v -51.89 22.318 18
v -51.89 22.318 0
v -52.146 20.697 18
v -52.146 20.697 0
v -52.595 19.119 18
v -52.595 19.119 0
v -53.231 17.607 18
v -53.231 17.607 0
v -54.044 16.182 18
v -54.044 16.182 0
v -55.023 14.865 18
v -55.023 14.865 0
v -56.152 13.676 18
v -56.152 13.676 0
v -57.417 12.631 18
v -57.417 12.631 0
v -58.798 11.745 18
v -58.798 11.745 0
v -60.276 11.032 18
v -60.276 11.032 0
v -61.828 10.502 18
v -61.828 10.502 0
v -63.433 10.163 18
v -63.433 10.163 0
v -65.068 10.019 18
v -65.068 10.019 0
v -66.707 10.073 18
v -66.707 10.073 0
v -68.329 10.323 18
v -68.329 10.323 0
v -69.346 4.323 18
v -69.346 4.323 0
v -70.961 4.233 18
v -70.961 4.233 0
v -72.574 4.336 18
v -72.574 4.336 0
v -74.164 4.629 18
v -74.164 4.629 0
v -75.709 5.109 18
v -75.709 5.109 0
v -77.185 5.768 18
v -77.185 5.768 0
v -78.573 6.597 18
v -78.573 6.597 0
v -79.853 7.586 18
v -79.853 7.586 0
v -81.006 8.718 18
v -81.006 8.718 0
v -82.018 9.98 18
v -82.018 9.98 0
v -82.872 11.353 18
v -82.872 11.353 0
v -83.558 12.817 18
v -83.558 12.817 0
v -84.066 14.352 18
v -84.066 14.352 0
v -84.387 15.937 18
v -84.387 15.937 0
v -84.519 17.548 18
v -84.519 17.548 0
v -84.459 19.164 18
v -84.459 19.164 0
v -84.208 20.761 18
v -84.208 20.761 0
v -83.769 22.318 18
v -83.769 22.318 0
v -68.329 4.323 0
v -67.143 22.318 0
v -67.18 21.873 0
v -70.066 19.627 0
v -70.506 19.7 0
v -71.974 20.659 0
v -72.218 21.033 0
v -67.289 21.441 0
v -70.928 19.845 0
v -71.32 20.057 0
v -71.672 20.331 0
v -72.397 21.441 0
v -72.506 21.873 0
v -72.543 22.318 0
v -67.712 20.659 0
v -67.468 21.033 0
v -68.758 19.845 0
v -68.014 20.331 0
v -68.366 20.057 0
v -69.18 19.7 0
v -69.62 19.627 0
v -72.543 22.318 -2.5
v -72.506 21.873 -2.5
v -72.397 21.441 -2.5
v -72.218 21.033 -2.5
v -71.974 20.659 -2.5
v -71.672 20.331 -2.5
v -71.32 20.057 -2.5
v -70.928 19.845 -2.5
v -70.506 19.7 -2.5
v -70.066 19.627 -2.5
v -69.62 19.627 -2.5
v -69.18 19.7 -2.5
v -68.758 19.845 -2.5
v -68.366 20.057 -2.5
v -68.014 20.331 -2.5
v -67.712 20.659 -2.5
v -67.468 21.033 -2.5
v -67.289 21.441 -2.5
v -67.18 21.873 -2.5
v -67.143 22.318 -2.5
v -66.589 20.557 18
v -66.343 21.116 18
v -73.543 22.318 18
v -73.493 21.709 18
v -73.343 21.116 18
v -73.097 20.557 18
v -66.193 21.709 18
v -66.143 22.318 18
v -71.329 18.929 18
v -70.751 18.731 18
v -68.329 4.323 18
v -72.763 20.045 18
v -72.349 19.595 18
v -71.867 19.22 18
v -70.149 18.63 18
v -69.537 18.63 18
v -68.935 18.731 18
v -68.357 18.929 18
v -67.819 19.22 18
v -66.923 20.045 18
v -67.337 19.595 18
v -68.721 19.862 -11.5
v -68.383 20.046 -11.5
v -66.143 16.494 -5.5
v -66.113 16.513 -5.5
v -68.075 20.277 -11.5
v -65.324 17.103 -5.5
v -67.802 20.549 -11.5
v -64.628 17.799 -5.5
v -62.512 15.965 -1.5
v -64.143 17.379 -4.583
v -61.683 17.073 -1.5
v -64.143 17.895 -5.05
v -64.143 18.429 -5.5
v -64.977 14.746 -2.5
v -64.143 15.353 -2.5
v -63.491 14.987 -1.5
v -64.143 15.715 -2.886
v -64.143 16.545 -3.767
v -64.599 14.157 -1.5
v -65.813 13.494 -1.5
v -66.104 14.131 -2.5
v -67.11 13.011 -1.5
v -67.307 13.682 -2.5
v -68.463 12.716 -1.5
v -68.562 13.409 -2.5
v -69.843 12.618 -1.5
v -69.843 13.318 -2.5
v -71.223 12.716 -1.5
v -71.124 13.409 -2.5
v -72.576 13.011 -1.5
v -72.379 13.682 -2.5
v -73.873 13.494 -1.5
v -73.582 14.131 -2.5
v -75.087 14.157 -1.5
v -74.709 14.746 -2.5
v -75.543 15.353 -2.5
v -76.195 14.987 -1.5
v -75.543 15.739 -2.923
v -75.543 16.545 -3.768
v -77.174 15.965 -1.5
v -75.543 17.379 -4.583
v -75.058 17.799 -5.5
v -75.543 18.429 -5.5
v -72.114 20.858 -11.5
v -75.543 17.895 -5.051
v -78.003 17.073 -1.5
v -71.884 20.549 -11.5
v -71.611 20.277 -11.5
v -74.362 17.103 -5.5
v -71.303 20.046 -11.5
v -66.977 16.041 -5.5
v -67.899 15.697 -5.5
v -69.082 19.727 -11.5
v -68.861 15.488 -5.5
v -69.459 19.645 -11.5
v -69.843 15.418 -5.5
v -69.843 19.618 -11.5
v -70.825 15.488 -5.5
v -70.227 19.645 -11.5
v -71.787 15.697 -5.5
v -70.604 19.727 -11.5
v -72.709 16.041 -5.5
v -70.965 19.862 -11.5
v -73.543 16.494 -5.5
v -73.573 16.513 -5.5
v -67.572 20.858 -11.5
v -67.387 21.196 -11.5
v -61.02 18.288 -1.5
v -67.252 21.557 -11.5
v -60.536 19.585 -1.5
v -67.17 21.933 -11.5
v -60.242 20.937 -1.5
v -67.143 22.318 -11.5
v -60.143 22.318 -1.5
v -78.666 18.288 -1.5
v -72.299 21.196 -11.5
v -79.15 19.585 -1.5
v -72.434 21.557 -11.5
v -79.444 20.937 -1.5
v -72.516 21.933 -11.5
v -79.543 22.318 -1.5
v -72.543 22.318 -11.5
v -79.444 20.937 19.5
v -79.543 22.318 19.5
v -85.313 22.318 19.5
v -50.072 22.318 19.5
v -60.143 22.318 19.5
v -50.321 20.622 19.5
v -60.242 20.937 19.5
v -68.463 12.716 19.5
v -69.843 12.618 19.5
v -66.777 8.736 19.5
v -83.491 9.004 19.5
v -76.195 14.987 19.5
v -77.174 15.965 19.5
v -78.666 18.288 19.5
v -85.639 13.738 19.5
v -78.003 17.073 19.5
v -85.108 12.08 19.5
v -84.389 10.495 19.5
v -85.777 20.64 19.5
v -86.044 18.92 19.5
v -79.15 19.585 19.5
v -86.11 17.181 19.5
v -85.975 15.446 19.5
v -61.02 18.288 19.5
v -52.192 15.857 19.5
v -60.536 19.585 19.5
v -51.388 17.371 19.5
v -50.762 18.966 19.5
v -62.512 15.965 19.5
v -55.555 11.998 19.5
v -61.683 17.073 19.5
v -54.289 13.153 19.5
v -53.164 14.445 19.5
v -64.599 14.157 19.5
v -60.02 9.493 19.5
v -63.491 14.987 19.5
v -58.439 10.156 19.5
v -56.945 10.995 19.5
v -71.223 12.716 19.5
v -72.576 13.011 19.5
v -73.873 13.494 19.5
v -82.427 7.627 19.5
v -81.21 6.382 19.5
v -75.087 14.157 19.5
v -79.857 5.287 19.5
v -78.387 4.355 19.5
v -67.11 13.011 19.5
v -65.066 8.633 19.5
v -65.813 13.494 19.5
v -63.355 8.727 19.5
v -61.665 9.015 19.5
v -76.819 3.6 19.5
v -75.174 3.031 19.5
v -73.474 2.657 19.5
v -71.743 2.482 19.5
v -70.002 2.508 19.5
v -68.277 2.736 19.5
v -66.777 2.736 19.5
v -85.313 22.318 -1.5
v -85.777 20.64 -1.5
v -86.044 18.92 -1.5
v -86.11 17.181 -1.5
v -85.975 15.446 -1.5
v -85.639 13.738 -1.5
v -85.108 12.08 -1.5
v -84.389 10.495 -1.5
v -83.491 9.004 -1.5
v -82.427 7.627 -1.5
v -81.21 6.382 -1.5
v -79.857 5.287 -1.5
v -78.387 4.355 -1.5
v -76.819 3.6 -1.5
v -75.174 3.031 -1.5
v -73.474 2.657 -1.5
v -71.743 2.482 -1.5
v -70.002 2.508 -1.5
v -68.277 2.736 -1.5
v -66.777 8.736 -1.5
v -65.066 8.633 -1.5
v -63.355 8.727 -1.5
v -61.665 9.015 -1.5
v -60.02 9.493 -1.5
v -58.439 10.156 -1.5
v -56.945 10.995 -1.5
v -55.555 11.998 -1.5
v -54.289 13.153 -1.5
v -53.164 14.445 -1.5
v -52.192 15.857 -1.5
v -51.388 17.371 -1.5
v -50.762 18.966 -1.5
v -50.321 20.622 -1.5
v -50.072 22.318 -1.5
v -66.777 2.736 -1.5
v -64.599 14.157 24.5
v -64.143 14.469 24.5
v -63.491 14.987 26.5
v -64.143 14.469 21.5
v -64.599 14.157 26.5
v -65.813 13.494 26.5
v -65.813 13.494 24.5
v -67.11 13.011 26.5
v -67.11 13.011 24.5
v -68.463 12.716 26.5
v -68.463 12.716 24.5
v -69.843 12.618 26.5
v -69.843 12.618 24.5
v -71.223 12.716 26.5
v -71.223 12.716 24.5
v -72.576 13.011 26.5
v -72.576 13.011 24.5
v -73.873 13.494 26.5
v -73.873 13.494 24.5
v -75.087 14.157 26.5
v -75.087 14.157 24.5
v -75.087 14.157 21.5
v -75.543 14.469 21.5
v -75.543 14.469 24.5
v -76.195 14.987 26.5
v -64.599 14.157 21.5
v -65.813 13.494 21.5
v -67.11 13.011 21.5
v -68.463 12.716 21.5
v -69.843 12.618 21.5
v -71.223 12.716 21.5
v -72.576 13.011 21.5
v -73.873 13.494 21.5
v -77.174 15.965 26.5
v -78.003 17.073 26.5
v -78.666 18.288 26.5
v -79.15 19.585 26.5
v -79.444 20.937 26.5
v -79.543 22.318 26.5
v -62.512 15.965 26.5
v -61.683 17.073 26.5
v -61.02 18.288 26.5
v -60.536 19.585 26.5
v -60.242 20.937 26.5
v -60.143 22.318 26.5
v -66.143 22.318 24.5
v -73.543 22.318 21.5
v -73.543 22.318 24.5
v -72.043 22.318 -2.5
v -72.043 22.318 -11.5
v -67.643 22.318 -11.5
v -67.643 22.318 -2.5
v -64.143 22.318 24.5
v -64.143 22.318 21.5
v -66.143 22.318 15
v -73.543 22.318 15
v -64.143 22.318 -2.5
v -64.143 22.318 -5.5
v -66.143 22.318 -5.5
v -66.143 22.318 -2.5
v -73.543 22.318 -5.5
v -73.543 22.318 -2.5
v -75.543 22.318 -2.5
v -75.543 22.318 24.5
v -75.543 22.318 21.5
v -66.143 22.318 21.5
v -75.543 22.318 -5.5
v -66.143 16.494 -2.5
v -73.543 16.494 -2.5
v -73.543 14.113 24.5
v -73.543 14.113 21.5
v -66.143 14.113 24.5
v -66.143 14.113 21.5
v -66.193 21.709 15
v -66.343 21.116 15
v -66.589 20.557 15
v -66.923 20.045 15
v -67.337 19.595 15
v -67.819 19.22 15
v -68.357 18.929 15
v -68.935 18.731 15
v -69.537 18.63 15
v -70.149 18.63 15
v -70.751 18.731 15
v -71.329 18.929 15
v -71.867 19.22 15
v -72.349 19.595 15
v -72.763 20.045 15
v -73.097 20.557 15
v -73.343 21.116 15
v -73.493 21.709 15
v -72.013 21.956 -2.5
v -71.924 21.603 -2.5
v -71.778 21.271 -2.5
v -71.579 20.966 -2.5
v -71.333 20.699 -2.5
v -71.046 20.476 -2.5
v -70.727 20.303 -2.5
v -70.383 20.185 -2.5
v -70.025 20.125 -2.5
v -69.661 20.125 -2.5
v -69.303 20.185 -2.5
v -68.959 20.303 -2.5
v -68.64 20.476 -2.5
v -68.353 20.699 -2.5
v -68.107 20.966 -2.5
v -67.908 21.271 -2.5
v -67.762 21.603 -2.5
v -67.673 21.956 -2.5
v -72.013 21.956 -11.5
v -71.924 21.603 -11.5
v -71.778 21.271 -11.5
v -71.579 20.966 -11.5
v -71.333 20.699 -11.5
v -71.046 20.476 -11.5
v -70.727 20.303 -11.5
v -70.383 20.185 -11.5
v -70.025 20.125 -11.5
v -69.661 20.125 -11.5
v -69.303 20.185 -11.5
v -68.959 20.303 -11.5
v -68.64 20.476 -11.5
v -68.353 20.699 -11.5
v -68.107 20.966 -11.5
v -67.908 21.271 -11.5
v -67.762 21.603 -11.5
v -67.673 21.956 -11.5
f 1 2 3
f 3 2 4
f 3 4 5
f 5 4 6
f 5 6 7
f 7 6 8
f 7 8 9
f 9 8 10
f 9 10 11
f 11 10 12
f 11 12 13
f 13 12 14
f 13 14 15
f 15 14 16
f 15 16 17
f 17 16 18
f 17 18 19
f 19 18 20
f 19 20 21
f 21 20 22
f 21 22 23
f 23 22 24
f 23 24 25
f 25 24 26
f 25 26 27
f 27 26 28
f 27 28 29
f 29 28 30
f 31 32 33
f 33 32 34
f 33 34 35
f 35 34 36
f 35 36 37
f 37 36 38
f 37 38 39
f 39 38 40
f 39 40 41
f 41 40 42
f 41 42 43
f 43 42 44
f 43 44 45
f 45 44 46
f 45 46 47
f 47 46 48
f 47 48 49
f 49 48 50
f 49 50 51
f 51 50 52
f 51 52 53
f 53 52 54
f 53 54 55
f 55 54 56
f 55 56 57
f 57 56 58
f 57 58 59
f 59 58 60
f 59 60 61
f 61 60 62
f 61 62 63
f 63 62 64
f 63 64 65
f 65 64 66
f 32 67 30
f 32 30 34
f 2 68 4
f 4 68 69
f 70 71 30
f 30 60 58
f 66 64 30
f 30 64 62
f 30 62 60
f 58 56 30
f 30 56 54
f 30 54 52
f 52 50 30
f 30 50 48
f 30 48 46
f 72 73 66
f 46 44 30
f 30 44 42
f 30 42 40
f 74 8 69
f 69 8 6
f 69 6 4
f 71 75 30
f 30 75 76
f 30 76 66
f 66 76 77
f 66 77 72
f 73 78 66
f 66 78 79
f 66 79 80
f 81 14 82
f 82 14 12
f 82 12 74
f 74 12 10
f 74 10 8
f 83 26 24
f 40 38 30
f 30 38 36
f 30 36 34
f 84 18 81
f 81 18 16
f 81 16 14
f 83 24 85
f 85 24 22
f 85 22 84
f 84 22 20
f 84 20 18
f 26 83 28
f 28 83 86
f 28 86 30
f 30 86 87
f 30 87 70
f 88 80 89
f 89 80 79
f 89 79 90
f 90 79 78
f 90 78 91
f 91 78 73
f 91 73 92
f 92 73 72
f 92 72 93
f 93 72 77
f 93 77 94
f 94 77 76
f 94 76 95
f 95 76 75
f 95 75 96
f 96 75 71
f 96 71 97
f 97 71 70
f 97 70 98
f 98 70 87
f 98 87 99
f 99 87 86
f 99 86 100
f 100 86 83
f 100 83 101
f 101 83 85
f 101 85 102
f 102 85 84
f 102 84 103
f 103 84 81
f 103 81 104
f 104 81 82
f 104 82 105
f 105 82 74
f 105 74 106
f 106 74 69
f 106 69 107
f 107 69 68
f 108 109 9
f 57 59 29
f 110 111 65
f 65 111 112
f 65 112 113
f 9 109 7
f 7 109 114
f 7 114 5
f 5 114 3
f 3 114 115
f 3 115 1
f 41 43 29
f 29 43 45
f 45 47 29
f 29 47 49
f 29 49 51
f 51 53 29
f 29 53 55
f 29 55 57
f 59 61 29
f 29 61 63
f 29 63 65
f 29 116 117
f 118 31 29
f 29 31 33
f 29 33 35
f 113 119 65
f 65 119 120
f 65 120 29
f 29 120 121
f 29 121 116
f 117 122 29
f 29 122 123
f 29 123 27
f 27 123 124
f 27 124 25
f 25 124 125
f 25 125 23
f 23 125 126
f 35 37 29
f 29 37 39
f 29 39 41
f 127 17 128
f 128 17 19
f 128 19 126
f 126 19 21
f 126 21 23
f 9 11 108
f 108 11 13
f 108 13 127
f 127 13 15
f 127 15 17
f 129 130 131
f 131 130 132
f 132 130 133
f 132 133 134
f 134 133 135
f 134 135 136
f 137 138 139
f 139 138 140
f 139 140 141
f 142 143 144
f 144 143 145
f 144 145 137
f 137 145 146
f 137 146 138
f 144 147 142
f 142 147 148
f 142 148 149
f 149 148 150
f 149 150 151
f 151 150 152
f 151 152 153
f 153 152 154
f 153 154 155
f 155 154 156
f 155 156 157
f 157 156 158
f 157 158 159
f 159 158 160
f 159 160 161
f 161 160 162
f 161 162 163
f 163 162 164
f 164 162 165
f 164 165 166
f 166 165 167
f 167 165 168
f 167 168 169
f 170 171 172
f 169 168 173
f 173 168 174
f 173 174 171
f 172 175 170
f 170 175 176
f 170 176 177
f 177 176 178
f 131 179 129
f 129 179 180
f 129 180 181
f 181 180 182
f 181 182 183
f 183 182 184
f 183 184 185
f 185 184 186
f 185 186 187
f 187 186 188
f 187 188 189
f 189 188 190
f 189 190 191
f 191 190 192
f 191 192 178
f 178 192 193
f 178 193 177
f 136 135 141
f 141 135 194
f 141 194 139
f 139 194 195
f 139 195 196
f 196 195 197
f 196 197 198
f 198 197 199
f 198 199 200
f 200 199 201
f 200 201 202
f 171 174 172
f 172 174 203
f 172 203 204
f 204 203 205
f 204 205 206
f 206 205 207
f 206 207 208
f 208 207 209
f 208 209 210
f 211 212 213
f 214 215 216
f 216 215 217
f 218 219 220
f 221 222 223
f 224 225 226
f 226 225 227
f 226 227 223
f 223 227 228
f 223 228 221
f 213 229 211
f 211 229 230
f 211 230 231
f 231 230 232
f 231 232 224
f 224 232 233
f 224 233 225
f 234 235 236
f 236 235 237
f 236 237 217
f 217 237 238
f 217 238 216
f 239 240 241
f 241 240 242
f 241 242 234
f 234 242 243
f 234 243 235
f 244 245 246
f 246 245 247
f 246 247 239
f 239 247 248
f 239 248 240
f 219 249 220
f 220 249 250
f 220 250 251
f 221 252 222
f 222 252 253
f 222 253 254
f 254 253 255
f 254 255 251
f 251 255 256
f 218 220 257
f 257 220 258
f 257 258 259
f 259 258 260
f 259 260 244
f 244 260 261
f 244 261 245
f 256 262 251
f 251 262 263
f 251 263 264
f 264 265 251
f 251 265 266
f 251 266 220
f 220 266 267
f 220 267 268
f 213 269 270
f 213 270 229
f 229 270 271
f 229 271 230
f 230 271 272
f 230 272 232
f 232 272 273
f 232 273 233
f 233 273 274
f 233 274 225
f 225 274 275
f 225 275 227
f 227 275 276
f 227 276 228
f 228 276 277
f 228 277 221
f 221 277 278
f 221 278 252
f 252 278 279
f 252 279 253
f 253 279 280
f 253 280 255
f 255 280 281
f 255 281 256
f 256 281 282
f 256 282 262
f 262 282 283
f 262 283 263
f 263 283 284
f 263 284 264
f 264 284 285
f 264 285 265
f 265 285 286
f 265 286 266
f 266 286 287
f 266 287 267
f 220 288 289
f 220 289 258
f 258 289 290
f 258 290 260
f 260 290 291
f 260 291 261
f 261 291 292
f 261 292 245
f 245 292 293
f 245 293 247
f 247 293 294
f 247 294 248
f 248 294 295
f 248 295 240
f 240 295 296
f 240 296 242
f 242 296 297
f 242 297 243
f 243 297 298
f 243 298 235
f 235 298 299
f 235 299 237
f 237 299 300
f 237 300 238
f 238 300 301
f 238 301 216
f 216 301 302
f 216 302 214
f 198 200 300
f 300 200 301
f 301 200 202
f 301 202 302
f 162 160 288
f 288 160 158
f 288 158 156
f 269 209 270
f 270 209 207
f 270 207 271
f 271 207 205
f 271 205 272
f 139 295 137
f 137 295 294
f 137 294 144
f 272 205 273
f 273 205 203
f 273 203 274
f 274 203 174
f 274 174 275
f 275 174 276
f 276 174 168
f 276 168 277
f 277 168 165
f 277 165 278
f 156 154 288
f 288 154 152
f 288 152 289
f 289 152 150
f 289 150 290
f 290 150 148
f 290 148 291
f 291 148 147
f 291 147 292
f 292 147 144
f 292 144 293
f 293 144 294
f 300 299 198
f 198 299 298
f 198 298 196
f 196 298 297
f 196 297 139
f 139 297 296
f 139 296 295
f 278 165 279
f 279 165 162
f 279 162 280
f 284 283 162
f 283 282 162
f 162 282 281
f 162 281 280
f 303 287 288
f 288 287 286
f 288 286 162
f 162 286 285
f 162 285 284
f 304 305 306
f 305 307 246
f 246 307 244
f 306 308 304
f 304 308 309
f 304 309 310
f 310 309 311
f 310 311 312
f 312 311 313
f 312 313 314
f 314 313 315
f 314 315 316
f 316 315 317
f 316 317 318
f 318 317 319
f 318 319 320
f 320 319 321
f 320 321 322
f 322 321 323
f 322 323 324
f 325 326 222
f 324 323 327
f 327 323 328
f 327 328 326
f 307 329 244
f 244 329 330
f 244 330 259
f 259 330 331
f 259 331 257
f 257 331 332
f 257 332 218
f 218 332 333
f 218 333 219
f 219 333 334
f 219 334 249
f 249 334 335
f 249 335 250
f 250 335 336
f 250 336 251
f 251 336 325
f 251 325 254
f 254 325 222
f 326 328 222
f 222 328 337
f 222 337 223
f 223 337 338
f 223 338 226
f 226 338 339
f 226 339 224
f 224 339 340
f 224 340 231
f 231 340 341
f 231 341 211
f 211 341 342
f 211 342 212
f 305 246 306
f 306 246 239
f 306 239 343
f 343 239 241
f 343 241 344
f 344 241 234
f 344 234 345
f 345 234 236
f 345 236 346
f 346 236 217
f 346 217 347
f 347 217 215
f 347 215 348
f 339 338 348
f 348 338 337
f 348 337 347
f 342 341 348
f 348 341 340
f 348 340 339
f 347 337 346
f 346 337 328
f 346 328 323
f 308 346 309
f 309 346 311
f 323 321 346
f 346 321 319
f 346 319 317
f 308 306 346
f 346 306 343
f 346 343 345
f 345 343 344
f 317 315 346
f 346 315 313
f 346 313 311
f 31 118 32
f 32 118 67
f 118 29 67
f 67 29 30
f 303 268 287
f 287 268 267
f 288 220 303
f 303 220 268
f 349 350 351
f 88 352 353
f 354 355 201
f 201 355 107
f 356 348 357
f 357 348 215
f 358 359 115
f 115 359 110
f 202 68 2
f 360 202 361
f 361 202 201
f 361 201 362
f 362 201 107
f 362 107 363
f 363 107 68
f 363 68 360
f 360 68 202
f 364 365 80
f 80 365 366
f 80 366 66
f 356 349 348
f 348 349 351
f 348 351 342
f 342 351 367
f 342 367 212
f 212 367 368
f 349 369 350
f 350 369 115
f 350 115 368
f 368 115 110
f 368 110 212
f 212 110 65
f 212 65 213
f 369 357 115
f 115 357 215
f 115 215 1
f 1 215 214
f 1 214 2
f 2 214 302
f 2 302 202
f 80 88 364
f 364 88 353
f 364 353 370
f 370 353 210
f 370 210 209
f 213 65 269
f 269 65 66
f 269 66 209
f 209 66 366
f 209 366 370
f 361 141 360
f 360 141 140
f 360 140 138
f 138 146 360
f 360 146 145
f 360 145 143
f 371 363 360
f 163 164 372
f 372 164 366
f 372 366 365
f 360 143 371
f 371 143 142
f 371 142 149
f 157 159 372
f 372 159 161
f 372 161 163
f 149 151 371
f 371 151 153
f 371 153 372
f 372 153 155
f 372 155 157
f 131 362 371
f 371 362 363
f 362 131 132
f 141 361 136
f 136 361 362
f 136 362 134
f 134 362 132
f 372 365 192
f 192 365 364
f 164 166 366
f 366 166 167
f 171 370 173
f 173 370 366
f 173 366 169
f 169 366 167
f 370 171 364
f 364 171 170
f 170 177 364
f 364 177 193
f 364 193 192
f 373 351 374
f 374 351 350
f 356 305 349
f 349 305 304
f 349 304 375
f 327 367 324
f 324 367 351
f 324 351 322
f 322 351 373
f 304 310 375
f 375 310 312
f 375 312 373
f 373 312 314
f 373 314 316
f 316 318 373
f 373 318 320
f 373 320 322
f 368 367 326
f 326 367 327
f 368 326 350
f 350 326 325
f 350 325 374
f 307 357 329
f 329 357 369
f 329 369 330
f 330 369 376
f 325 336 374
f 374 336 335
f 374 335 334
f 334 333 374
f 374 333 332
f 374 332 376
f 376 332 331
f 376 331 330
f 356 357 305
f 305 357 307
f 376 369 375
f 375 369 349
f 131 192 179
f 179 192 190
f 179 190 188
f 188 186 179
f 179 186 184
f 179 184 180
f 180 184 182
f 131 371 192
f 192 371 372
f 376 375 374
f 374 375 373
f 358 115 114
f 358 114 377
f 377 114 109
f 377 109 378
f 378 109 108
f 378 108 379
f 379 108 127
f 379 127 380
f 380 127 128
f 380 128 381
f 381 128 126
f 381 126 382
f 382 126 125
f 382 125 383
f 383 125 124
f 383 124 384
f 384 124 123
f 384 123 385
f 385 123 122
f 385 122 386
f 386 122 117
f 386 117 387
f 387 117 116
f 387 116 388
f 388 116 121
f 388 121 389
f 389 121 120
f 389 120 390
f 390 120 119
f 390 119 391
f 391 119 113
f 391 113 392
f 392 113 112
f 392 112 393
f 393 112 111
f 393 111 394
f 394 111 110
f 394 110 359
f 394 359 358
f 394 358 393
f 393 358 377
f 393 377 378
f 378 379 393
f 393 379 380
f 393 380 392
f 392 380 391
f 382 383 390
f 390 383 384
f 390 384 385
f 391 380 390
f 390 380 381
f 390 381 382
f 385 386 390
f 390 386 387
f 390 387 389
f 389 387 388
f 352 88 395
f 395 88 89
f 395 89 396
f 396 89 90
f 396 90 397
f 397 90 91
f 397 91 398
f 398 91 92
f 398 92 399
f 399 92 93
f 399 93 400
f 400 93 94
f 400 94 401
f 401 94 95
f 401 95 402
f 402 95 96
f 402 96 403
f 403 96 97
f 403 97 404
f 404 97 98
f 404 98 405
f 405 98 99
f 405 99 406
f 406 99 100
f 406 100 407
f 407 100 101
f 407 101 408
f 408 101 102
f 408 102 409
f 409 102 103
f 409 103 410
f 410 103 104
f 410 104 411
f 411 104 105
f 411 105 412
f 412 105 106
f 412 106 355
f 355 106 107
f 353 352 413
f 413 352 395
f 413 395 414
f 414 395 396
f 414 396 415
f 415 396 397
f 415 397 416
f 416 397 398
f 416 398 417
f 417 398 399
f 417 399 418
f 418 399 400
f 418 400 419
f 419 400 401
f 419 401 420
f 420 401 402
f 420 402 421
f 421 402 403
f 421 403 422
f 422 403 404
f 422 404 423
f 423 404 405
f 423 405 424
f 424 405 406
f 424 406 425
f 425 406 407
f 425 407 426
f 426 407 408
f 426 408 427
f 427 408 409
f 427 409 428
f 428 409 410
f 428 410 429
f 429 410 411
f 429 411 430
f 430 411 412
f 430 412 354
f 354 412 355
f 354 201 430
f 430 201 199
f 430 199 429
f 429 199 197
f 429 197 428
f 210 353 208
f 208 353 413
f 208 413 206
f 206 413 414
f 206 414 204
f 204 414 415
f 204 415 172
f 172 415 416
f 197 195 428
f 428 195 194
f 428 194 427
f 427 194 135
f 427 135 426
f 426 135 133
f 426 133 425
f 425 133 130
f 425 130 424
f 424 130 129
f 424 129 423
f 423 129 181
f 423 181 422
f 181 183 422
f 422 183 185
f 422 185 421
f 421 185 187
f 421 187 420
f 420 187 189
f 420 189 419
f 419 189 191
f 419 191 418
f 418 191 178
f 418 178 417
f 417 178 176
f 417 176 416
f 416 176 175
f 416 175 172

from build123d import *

# Parameters (mm, degrees)
SALIENTE_EXTRUIR1_DEPTH = 18
SALIENTE_EXTRUIR2_START = 1.5
CROQUIS2_R              = 2.7
SALIENTE_EXTRUIR2_DEPTH = 1.5
SALIENTE_EXTRUIR3_DEPTH = 1.5
CROQUIS6_W              = 5.4
CROQUIS6_H              = 1.803822617
SALIENTE_EXTRUIR7_DEPTH = 10
CROQUIS10_W             = 5.4
CROQUIS10_H             = 10
CORTAR_EXTRUIR3_DEPTH   = 10
CROQUIS12_W             = 50.345864286
CROQUIS12_H             = 43.398115734
CORTAR_EXTRUIR4_DEPTH   = 30
CROQUIS14_W             = 2
CROQUIS14_H             = 3
CORTAR_EXTRUIR5_DEPTH   = 30
CORTAR_EXTRUIR7_START   = -7.4
CROQUIS16_W             = 3
CROQUIS16_H             = 7.002646448
CROQUIS16_H_2           = 3.270183245
CORTAR_EXTRUIR7_DEPTH   = 7.4
CROQUIS17_W             = 3.7
CROQUIS17_H             = 3
REVOLUCI_N2_ANGLE       = 180
CROQUIS19_W             = 0.5
CROQUIS19_H             = 9
REVOLUCI_N3_ANGLE       = 180


with BuildPart() as part:
    # Croquis1 → Saliente-Extruir1 (new body)
    with BuildSketch(Plane.XY):
        with BuildLine():
            Line((-53.667784589, 33.4650382), (-54.417784589, 34.764076306))
            Line((-54.417784589, 34.764076306), (-59.613937012, 31.764076306))
            ThreePointArc((-59.613937012, 31.764076306), (-73.945502317, 40.827707086), (-87.584573208, 30.752047693))
            Line((-87.584573208, 30.752047693), (-88.334573208, 29.453009587))
            Line((-88.334573208, 29.453009587), (-83.138420786, 26.453009587))
            ThreePointArc((-83.138420786, 26.453009587), (-83.82197264, 9.509694567), (-68.276660199, 2.735742387))
            Line((-68.276660199, 2.735742387), (-66.776660199, 2.735742387))
            Line((-66.776660199, 2.735742387), (-66.776660199, 8.735742387))
            ThreePointArc((-66.776660199, 8.735742387), (-51.761543041, 16.615426627), (-53.667784589, 33.4650382))
        make_face()
        with BuildLine():
            Line((-54.507549641, 31.745180452), (-55.016343575, 32.626437397))
            Line((-55.016343575, 32.626437397), (-60.212495998, 29.626437397))
            ThreePointArc((-60.212495998, 29.626437397), (-72.508207296, 39.071771198), (-85.675250182, 30.884718699))
            Line((-85.675250182, 30.884718699), (-86.184044116, 30.003461754))
            Line((-86.184044116, 30.003461754), (-80.987891693, 27.003461754))
            ThreePointArc((-80.987891693, 27.003461754), (-83.019935064, 11.632396511), (-69.346218174, 4.322929129))
            Line((-69.346218174, 4.322929129), (-68.328630306, 4.322929129))
            Line((-68.328630306, 4.322929129), (-68.328630306, 10.322929129))
            ThreePointArc((-68.328630306, 10.322929129), (-54.000875637, 16.248660571), (-54.507549641, 31.745180452))
        make_face(mode=Mode.SUBTRACT)
    extrude(amount=SALIENTE_EXTRUIR1_DEPTH)

    # Croquis2 → Saliente-Extruir2 (add)
    with BuildSketch(Plane(origin=(0, 0, 0), x_dir=(-1, 0, 0), z_dir=(0, 0, -1)).offset(SALIENTE_EXTRUIR2_START)):
        with BuildLine():
            Line((87.584573208, 30.752047693), (88.334573208, 29.453009587))
            Line((88.334573208, 29.453009587), (83.138420786, 26.453009587))
            ThreePointArc((83.138420786, 26.453009587), (83.82197264, 9.509694567), (68.276660199, 2.735742387))
            Line((68.276660199, 2.735742387), (66.776660199, 2.735742387))
            Line((66.776660199, 2.735742387), (66.776660199, 8.735742387))
            ThreePointArc((66.776660199, 8.735742387), (51.761543041, 16.615426627), (53.667784589, 33.4650382))
            Line((53.667784589, 33.4650382), (54.417784589, 34.764076306))
            Line((54.417784589, 34.764076306), (59.613937012, 31.764076306))
            ThreePointArc((59.613937012, 31.764076306), (73.945502317, 40.827707086), (87.584573208, 30.752047693))
        make_face()
        with Locations((69.843005999, 22.317609427)):
            Circle(CROQUIS2_R, mode=Mode.SUBTRACT)
    extrude(amount=-SALIENTE_EXTRUIR2_DEPTH)

    # Croquis3 → Saliente-Extruir3 (add)
    with BuildSketch(Plane.XY.offset(18)):
        with BuildLine():
            Line((-66.776660199, 8.735742387), (-66.776660199, 2.735742387))
            Line((-66.776660199, 2.735742387), (-68.276660199, 2.735742387))
            ThreePointArc((-68.276660199, 2.735742387), (-83.82197264, 9.509694567), (-83.138420786, 26.453009587))
            Line((-83.138420786, 26.453009587), (-88.334573208, 29.453009587))
            Line((-88.334573208, 29.453009587), (-87.584573208, 30.752047693))
            ThreePointArc((-87.584573208, 30.752047693), (-73.945502317, 40.827707086), (-59.613937012, 31.764076306))
            Line((-59.613937012, 31.764076306), (-54.417784589, 34.764076306))
            Line((-54.417784589, 34.764076306), (-53.667784589, 33.4650382))
            ThreePointArc((-53.667784589, 33.4650382), (-51.761543041, 16.615426627), (-66.776660199, 8.735742387))
        make_face()
    extrude(amount=SALIENTE_EXTRUIR3_DEPTH)

    # Croquis6 → Saliente-Extruir7 (add)
    with BuildSketch(Plane(origin=(0, 0, -1.5), x_dir=(-1, 0, 0), z_dir=(0, 0, -1))):
        with Locations((69.843005999, 21.415698119)):
            Rectangle(CROQUIS6_W, CROQUIS6_H)
    extrude(amount=SALIENTE_EXTRUIR7_DEPTH)

    # Croquis10 → Cortar-Extruir3 (cut)
    with BuildSketch(Plane(origin=(0, 22.317609427, 0), x_dir=(1, 0, 0), z_dir=(0, 1, 0))):
        with Locations((-69.843005999, 6.5)):
            Rectangle(CROQUIS10_W, CROQUIS10_H)
    extrude(amount=-CORTAR_EXTRUIR3_DEPTH, mode=Mode.SUBTRACT)

    # Croquis11 → Revolución1 (revolve)
    with BuildSketch(Plane(origin=(0, 22.317609427, 0), x_dir=(1, 0, 0), z_dir=(0, 1, 0)), mode=Mode.PRIVATE) as revoluci_n1_sk:
        Polygon((-72.543005999, 1.5), (-79.543005999, 1.5), (-72.543005999, 11.5), align=None)
        Polygon((-71.193005999, -19.5), (-69.843005999, -19.5), (-69.843005999, -26.5), (-71.193005999, -26.5), (-79.543005999, -26.5), (-79.543005999, -19.5), align=None)
    revolve(revoluci_n1_sk.sketch.rotate(Axis((-69.843005999, 22.317609427, 19.5), (0, 0, 1)), 180), axis=Axis((-69.843005999, 22.317609427, 19.5), (0, 0, 1)))

    # Croquis12 → Cortar-Extruir4 (cut)
    with BuildSketch(Plane(origin=(0, 22.317609427, 0), x_dir=(1, 0, 0), z_dir=(0, 1, 0))):
        with Locations((-66.462924906, -7.850212976)):
            Rectangle(CROQUIS12_W, CROQUIS12_H)
    extrude(amount=CORTAR_EXTRUIR4_DEPTH, mode=Mode.SUBTRACT)

    # Croquis14 → Cortar-Extruir5 (cut)
    with BuildSketch(Plane(origin=(0, 22.317609427, 0), x_dir=(-1, 0, 0), z_dir=(0, 1, 0))):
        with Locations((65.143005999, -4)):
            Rectangle(CROQUIS14_W, CROQUIS14_H)
        with Locations((74.543005999, -4)):
            Rectangle(CROQUIS14_W, CROQUIS14_H)
        with Locations((74.543005999, 23)):
            Rectangle(CROQUIS14_W, CROQUIS14_H)
        with Locations((65.143005999, 23)):
            Rectangle(CROQUIS14_W, CROQUIS14_H)
    extrude(amount=-CORTAR_EXTRUIR5_DEPTH, mode=Mode.SUBTRACT)

    # Croquis16 → Cortar-Extruir7 (cut)
    with BuildSketch(Plane.ZY.offset(73.543005999).offset(CORTAR_EXTRUIR7_START)):
        with Locations((-4, 12.992198291)):
            Rectangle(CROQUIS16_W, CROQUIS16_H)
        with Locations((23, 12.478250621)):
            Rectangle(CROQUIS16_W, CROQUIS16_H_2)
    extrude(amount=CORTAR_EXTRUIR7_DEPTH, mode=Mode.SUBTRACT)

    # Croquis17 → Revolución2 (revolve)
    with BuildSketch(Plane(origin=(0, 22.317609427, 0), x_dir=(1, 0, 0), z_dir=(0, 1, 0))):
        with Locations((-67.993005999, -16.5)):
            Rectangle(CROQUIS17_W, CROQUIS17_H)
    revolve(axis=Axis((-69.843005999, 22.317609427, 15), (0, 0, -1)), revolution_arc=REVOLUCI_N2_ANGLE)

    # Croquis19 → Revolución3 (revolve)
    with BuildSketch(Plane(origin=(0, 22.317609427, 0), x_dir=(1, 0, 0), z_dir=(0, 1, 0))):
        with Locations((-67.393005999, 7)):
            Rectangle(CROQUIS19_W, CROQUIS19_H)
    revolve(axis=Axis((-69.843005999, 22.317609427, 0), (0, 0, -1)), revolution_arc=REVOLUCI_N3_ANGLE)


solid = part.part
